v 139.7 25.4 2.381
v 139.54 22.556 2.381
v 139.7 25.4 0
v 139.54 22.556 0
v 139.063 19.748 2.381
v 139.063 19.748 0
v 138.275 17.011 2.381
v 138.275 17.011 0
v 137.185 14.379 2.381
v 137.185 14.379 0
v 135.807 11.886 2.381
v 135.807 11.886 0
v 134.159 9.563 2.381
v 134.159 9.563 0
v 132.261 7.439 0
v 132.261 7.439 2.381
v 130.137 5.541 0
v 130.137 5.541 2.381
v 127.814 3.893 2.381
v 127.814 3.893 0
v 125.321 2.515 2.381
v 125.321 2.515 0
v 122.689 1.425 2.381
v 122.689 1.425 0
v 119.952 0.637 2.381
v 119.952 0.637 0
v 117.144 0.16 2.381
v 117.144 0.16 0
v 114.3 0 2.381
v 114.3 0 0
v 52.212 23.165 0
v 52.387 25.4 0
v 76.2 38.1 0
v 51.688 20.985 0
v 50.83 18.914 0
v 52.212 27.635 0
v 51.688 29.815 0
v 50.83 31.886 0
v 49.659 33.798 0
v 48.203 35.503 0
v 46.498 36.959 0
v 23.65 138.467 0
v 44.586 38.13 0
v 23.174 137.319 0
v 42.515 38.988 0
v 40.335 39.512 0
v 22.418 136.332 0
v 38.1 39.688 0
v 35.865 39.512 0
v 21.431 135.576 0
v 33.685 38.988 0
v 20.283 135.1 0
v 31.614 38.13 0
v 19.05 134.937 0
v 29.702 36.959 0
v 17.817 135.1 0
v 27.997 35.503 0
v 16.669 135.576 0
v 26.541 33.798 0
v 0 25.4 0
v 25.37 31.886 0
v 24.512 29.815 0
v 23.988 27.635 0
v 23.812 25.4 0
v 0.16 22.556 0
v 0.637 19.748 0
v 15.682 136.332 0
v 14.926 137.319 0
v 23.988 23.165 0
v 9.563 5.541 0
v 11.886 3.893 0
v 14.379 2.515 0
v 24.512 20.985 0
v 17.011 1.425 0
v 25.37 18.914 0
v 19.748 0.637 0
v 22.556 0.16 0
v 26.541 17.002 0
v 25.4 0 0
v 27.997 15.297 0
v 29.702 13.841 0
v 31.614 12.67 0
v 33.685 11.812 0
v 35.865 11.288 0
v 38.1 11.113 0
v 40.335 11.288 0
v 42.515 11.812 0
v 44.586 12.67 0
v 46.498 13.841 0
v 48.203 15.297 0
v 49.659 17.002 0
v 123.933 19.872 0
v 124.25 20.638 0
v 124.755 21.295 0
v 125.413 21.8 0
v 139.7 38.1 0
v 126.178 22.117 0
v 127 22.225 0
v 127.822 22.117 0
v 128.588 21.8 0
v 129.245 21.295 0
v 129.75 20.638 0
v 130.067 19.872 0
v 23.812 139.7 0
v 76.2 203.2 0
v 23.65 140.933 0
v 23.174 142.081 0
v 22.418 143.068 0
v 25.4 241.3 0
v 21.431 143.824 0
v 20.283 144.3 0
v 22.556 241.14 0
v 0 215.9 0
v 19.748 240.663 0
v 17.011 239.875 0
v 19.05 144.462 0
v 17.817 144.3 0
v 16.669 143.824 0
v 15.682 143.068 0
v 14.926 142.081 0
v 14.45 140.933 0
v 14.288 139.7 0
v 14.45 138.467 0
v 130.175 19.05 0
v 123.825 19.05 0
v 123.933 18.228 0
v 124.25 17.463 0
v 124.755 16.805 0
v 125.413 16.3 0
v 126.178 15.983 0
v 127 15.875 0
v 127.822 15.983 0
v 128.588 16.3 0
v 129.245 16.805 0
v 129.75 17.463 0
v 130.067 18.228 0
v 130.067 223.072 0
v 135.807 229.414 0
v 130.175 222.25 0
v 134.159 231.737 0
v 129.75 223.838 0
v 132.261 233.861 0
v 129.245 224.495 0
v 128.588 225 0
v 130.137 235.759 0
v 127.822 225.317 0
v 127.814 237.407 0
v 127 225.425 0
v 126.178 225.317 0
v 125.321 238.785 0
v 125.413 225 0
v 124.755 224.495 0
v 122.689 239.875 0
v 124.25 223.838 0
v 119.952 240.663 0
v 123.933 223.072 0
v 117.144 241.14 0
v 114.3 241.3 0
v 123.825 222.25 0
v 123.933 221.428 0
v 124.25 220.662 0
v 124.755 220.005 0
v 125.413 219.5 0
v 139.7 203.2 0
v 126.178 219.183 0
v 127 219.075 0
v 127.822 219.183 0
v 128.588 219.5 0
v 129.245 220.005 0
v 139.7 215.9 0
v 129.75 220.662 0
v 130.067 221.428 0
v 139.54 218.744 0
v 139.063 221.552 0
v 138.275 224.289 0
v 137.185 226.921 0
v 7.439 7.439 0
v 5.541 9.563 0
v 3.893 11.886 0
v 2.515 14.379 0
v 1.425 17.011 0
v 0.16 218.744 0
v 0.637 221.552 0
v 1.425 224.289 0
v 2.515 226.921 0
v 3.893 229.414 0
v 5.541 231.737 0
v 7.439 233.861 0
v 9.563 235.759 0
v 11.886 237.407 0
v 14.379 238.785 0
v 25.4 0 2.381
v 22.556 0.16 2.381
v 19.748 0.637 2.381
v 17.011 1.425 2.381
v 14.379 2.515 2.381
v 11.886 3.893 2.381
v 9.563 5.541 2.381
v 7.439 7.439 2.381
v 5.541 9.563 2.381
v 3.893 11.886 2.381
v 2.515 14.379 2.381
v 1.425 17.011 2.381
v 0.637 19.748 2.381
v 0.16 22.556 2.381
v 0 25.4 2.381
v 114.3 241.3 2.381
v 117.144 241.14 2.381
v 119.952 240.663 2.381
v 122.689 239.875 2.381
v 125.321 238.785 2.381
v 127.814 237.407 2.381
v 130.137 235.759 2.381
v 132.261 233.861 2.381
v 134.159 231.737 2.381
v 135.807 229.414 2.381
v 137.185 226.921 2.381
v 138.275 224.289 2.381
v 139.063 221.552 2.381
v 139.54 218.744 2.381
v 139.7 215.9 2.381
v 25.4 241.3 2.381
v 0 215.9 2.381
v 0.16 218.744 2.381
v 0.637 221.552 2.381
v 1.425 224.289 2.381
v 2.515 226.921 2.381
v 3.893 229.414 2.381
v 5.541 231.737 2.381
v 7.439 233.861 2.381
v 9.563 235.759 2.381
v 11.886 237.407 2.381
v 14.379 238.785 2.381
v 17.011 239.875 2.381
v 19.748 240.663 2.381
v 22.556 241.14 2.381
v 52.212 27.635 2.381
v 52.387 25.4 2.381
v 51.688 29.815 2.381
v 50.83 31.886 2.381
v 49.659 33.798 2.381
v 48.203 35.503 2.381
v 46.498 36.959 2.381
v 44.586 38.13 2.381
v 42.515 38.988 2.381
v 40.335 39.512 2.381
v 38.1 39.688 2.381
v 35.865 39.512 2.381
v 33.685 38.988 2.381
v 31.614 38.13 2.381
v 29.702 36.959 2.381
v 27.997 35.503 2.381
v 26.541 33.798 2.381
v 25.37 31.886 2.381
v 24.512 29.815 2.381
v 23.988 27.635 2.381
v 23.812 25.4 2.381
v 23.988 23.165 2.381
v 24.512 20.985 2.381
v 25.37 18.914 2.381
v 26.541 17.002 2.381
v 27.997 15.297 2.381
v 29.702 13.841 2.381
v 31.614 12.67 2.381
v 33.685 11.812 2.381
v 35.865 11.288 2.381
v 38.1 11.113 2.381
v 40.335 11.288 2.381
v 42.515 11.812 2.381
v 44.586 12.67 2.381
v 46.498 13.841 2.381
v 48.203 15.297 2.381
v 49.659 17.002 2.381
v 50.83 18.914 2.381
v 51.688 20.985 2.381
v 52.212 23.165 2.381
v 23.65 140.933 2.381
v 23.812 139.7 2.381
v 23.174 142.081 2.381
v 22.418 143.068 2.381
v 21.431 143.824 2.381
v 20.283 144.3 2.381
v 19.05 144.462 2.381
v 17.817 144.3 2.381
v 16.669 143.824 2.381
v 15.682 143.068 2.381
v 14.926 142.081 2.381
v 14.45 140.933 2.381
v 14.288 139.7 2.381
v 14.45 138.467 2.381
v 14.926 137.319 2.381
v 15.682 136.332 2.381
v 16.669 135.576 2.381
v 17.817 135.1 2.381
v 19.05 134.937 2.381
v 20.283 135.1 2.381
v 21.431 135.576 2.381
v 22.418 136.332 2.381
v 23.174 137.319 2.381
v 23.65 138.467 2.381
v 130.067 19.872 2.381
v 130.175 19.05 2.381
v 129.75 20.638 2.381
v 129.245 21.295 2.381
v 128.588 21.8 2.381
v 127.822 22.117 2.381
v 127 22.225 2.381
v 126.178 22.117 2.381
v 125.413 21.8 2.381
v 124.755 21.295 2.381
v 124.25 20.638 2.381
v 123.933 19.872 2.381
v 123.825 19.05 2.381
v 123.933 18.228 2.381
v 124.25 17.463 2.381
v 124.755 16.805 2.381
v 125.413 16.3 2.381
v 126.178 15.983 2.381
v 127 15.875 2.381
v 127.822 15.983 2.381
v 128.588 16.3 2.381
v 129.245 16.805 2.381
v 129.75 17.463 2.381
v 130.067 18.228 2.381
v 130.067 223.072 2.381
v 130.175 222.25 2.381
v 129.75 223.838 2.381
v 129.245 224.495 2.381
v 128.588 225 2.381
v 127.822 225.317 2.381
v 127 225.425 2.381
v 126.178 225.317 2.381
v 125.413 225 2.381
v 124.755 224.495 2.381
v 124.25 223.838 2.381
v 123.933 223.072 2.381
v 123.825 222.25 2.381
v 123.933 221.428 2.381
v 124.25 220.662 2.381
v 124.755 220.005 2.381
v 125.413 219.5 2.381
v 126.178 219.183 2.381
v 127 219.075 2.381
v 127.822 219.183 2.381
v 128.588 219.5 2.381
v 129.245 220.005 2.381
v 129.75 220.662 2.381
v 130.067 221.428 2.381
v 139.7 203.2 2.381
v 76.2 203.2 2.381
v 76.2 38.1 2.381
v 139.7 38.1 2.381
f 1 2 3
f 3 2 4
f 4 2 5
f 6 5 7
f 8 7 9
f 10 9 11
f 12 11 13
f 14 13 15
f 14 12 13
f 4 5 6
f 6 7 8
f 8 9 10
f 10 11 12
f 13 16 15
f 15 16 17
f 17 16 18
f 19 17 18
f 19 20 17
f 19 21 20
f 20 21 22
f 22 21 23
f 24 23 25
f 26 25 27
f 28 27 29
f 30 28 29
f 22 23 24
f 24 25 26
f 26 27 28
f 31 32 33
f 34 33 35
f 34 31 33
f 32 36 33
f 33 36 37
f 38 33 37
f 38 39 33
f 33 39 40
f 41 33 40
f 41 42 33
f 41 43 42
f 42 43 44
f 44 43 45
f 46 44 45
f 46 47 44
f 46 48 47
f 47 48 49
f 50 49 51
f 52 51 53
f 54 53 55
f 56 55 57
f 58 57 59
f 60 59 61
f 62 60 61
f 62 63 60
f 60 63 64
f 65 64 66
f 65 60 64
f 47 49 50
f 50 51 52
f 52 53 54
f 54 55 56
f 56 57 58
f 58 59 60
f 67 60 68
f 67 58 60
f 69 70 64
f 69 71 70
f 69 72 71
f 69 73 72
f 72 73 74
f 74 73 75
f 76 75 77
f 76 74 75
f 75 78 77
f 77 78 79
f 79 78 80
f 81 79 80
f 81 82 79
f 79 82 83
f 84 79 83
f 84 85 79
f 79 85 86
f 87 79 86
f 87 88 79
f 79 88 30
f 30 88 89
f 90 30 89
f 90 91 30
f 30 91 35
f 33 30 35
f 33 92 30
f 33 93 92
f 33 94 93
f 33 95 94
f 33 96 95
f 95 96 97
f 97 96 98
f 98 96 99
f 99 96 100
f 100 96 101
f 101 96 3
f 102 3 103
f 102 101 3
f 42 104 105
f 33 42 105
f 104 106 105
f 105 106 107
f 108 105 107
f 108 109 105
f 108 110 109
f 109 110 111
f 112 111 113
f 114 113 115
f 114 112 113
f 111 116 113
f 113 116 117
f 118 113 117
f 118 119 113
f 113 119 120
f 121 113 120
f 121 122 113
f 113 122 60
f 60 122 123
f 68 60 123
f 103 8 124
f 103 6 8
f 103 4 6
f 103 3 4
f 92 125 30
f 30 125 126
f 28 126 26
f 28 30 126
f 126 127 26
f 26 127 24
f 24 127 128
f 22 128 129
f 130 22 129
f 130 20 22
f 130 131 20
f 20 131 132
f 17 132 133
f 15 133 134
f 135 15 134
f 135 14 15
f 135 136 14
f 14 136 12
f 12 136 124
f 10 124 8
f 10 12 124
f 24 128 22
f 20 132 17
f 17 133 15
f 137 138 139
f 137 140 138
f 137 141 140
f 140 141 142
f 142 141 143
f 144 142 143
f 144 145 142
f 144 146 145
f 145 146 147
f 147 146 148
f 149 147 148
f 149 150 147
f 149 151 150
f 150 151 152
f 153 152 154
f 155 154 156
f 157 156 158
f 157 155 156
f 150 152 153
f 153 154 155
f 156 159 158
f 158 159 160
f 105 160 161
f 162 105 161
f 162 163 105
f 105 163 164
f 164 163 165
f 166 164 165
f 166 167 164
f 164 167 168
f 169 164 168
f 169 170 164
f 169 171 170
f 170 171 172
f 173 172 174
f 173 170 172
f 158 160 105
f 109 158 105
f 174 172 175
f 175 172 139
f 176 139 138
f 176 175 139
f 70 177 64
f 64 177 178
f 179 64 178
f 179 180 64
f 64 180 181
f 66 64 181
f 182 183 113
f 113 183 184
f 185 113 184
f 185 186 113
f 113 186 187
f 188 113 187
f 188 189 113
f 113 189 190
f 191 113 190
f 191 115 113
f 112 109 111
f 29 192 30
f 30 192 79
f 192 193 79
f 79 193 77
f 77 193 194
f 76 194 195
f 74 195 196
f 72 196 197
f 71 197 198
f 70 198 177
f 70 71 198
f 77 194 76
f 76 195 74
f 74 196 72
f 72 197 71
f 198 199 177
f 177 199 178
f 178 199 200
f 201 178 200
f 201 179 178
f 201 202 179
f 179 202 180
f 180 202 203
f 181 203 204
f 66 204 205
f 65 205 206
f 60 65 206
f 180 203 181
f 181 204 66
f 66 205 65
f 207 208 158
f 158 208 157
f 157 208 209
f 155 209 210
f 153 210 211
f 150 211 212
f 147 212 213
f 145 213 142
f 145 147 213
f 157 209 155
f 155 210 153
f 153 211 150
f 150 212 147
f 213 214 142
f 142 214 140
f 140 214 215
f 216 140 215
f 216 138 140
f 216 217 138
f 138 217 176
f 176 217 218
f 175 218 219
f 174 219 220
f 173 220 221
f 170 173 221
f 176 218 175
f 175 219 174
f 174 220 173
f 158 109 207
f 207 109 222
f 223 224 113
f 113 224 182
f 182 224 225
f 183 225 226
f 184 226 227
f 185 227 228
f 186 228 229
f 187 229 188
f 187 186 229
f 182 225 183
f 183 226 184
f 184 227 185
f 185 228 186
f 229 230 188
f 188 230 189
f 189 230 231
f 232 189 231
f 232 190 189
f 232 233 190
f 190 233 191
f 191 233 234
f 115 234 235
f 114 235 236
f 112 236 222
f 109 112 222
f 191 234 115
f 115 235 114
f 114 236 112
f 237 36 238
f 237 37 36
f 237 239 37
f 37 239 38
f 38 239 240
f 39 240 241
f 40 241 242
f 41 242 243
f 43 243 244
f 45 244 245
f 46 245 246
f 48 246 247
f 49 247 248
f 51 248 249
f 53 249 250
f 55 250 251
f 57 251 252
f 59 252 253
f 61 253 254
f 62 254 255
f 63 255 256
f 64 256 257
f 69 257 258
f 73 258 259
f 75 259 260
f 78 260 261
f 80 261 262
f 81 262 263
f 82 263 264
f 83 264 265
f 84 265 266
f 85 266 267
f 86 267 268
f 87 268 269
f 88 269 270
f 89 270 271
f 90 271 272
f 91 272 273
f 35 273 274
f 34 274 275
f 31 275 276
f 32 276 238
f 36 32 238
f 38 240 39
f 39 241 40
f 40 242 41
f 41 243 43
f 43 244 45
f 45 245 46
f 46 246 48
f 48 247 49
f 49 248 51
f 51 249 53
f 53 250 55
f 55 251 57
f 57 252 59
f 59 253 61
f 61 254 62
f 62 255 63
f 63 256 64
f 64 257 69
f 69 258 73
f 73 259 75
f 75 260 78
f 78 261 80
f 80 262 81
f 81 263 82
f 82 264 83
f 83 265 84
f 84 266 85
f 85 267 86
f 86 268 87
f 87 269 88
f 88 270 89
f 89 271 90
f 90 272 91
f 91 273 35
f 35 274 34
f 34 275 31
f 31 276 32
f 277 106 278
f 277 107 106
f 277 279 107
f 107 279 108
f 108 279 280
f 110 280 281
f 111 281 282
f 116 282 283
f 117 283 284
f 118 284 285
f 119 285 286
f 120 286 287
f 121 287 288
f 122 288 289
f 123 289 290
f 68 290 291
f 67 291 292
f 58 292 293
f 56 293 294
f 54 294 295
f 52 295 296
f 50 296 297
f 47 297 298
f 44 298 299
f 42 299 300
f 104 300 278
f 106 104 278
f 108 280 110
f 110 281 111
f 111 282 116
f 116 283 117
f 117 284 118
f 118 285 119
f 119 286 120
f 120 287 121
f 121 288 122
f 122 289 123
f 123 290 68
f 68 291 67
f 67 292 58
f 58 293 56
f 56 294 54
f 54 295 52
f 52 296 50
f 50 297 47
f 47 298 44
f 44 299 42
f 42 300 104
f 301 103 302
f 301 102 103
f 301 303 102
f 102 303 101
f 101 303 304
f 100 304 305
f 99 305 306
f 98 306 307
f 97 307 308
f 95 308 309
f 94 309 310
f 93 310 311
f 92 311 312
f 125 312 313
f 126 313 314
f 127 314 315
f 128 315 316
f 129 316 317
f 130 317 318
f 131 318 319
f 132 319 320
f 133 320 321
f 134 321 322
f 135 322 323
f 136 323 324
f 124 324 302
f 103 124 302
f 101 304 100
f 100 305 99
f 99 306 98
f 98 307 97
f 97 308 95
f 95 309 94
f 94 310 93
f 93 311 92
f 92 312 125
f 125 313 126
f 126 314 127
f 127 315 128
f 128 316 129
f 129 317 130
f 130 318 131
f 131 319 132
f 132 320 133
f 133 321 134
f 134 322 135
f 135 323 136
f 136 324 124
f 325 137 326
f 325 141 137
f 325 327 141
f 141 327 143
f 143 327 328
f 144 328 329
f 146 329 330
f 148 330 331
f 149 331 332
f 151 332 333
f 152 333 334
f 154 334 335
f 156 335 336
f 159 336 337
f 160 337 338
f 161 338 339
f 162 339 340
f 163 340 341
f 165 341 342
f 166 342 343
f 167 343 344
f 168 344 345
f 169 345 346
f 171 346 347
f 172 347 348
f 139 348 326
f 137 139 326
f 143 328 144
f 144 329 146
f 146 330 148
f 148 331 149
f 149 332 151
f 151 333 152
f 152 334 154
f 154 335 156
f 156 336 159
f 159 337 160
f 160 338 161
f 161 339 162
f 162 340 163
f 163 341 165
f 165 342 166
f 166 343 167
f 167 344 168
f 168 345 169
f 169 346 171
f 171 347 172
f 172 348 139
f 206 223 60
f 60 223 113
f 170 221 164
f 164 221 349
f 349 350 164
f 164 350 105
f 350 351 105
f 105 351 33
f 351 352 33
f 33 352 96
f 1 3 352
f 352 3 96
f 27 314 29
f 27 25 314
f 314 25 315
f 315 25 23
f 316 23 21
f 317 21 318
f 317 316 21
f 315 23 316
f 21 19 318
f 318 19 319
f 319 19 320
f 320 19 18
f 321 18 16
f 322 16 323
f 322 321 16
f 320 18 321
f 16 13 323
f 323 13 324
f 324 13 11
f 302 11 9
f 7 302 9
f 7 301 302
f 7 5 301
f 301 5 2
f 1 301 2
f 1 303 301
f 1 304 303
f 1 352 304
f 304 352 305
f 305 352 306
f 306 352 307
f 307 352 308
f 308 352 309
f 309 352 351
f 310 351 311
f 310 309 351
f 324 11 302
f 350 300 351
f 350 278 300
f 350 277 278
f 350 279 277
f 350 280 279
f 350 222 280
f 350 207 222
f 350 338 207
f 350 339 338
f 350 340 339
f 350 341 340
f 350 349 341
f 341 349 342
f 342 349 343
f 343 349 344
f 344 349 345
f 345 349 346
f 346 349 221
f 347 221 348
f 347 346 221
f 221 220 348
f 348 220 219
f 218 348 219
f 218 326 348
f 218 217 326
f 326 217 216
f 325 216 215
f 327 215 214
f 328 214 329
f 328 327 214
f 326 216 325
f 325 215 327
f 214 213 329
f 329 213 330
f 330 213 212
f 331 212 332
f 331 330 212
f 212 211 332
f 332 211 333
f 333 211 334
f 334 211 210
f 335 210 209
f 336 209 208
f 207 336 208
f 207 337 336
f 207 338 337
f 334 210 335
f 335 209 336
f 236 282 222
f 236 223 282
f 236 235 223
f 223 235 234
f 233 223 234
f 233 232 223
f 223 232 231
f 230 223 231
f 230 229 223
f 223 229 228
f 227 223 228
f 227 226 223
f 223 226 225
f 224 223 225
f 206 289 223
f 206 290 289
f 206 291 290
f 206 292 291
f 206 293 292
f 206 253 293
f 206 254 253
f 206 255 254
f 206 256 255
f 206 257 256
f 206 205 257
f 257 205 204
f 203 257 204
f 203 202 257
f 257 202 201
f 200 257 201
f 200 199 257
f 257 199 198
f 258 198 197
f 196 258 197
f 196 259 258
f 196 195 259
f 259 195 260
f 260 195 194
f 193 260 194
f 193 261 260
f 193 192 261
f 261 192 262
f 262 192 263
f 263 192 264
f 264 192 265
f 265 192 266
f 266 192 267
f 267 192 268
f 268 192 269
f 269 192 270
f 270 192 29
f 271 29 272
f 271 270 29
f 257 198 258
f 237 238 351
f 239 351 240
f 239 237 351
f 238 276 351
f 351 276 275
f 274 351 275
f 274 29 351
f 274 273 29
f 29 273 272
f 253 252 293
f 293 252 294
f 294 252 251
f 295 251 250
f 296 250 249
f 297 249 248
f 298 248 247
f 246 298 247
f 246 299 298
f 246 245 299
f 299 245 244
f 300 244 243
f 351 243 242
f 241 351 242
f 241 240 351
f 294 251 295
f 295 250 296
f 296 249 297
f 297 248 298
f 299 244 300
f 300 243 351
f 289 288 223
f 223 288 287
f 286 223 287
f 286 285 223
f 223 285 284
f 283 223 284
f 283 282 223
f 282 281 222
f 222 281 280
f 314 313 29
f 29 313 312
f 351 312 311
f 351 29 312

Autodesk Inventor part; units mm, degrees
ref_plane "YZ Plane" through (0, 0, 0) normal (1, 0, 0) x (0, 1, 0)
ref_plane "XZ Plane" through (0, 0, 0) normal (0, 1, 0) x (-1, 0, 0)
ref_plane "XY Plane" through (0, 0, 0) normal (0, 0, 1) x (1, 0, 0)
sketch "Sketch1" plane through (0, 0, 0) normal (0, 0, 1) x (1, 0, 0)
  line L0 (0, 0) -> (139.7, 0)
  line L1 (139.7, 241.3) -> (0, 241.3)
  line L2 (0, 241.3) -> (0, 0)
  line L3 (139.7, 203.2) -> (76.2, 203.2)
  line L4 (76.2, 203.2) -> (76.2, 38.1)
  line L5 (76.2, 38.1) -> (139.7, 38.1)
  line L6 (139.7, 0) -> (139.7, 38.1)
  line L7 (139.7, 203.2) -> (139.7, 241.3)
  circle A0 centre (127, 222.25) radius 3.175
  circle A1 centre (127, 19.05) radius 3.175
  circle A2 centre (19.05, 139.7) radius 4.7625
  circle A3 centre (38.1, 25.4) radius 14.2875
  dimension "d0" = 38.1
  dimension "d1" = 38.1
  dimension "d2" = 241.3
  dimension "d3" = 139.7
  dimension "d4" = 12.7
  dimension "d5" = 12.7
  dimension "d6" = 6.35
  dimension "d7" = 6.35
  dimension "d8" = 19.05
  dimension "d9" = 19.05
  dimension "d10" = 63.5
  dimension "d11" = 9.525
  dimension "d12" = 19.05
  dimension "d13" = 101.6
  dimension "d14" = 28.575
  dimension "d15" = 38.1
  dimension "d16" = 25.4
extrude "Extrusion1" add sketch "Sketch1" along normal blind 2.3813
fillet "Fillet1" radius 25.4 4 edges at (0, 241.3, 1.1906) (139.7, 241.3, 1.1906) (0, 0, 1.1906) (139.7, 0, 1.1906)
properties part number "Plate_VerticalConveyorMotorMount" material "Aluminum-6061"
